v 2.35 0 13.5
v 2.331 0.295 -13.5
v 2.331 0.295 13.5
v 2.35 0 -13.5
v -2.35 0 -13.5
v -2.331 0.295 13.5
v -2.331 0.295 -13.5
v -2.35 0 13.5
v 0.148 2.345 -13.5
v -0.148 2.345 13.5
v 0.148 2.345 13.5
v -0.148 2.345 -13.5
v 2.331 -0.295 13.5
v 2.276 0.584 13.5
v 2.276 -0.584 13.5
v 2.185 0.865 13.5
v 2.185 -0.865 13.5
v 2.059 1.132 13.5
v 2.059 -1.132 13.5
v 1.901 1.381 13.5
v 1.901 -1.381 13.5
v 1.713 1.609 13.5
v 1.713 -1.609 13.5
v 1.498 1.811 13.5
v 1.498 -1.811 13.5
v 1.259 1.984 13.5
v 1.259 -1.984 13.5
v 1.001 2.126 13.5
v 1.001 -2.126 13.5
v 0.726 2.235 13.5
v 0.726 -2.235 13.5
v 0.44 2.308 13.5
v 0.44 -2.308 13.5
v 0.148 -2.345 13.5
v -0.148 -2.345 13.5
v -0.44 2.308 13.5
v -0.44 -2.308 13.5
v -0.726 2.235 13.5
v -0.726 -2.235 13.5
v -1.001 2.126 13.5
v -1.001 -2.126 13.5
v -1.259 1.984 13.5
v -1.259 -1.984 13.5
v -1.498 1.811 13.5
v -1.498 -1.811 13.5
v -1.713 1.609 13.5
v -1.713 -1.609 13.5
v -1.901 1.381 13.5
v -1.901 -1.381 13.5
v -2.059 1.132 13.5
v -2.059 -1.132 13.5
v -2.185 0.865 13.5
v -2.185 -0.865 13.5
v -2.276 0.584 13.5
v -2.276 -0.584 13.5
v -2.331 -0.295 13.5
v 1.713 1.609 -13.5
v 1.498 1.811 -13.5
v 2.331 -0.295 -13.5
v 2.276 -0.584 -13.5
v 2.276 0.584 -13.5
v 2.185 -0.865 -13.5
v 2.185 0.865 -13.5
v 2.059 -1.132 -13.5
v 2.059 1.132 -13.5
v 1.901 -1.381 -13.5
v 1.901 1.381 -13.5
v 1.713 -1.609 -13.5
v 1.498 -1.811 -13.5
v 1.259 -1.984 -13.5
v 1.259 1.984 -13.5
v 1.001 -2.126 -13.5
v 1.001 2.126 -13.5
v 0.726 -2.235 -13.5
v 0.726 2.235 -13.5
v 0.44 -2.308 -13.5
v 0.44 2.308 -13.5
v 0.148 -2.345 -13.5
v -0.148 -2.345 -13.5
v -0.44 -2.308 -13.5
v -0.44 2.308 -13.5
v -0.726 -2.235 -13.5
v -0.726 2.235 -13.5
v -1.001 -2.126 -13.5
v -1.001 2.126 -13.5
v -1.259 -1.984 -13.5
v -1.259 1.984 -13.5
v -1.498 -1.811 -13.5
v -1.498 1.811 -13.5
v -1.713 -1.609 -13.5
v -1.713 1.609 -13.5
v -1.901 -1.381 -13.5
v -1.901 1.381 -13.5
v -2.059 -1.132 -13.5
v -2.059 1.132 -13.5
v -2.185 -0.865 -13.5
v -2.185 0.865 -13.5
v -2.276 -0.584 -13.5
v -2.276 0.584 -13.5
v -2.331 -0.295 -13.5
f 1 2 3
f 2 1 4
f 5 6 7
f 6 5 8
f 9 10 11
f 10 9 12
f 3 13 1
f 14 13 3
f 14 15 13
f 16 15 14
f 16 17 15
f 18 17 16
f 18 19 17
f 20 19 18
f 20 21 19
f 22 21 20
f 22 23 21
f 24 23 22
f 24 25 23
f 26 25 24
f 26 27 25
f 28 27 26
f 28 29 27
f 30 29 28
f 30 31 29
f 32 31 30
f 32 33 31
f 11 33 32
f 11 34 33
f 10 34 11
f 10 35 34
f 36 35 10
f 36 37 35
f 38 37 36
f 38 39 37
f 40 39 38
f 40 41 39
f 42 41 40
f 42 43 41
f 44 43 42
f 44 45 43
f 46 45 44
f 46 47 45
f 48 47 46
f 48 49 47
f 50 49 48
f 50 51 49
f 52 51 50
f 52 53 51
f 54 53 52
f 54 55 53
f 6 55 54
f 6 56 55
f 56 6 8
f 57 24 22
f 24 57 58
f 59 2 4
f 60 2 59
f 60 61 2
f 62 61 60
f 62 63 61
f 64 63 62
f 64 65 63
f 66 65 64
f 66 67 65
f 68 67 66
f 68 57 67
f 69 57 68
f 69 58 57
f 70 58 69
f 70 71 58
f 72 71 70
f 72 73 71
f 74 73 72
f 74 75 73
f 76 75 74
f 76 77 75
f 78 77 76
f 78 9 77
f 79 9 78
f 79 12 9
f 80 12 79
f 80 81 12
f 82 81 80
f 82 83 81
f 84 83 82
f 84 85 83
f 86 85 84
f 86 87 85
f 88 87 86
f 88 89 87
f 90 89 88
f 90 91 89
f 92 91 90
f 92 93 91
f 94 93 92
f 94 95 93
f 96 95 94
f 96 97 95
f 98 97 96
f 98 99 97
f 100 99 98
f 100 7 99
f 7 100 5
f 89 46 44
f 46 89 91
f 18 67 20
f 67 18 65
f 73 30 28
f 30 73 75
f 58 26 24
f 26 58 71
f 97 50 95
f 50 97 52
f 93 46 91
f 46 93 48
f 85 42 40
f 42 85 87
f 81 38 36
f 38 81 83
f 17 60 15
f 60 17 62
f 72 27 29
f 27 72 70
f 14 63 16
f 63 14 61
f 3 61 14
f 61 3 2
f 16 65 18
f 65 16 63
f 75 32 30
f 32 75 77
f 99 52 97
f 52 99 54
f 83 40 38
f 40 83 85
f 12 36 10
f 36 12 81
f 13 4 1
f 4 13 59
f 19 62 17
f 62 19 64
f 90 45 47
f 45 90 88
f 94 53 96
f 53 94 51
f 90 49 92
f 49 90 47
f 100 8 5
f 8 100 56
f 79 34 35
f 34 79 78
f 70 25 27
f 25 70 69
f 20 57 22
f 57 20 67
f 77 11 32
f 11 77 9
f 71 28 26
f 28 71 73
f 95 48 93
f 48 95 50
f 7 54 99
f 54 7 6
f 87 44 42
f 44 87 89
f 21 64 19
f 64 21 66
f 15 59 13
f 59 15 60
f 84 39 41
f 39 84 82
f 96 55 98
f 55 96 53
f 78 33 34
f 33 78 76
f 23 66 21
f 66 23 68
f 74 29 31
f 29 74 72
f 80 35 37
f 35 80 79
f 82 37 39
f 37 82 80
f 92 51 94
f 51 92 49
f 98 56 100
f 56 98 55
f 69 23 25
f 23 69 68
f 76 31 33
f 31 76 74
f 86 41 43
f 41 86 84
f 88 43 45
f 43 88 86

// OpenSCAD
$fn = 50;


difference() {
	union() {
		translate(v = [0, 0, -13.5000000000]) {
			cylinder(h = 27, r = 2.3500000000);
		}
	}
	union() {
		translate(v = [0, 0, -100.0000000000]) {
			cylinder(h = 200, r = 0);
		}
	}
}
